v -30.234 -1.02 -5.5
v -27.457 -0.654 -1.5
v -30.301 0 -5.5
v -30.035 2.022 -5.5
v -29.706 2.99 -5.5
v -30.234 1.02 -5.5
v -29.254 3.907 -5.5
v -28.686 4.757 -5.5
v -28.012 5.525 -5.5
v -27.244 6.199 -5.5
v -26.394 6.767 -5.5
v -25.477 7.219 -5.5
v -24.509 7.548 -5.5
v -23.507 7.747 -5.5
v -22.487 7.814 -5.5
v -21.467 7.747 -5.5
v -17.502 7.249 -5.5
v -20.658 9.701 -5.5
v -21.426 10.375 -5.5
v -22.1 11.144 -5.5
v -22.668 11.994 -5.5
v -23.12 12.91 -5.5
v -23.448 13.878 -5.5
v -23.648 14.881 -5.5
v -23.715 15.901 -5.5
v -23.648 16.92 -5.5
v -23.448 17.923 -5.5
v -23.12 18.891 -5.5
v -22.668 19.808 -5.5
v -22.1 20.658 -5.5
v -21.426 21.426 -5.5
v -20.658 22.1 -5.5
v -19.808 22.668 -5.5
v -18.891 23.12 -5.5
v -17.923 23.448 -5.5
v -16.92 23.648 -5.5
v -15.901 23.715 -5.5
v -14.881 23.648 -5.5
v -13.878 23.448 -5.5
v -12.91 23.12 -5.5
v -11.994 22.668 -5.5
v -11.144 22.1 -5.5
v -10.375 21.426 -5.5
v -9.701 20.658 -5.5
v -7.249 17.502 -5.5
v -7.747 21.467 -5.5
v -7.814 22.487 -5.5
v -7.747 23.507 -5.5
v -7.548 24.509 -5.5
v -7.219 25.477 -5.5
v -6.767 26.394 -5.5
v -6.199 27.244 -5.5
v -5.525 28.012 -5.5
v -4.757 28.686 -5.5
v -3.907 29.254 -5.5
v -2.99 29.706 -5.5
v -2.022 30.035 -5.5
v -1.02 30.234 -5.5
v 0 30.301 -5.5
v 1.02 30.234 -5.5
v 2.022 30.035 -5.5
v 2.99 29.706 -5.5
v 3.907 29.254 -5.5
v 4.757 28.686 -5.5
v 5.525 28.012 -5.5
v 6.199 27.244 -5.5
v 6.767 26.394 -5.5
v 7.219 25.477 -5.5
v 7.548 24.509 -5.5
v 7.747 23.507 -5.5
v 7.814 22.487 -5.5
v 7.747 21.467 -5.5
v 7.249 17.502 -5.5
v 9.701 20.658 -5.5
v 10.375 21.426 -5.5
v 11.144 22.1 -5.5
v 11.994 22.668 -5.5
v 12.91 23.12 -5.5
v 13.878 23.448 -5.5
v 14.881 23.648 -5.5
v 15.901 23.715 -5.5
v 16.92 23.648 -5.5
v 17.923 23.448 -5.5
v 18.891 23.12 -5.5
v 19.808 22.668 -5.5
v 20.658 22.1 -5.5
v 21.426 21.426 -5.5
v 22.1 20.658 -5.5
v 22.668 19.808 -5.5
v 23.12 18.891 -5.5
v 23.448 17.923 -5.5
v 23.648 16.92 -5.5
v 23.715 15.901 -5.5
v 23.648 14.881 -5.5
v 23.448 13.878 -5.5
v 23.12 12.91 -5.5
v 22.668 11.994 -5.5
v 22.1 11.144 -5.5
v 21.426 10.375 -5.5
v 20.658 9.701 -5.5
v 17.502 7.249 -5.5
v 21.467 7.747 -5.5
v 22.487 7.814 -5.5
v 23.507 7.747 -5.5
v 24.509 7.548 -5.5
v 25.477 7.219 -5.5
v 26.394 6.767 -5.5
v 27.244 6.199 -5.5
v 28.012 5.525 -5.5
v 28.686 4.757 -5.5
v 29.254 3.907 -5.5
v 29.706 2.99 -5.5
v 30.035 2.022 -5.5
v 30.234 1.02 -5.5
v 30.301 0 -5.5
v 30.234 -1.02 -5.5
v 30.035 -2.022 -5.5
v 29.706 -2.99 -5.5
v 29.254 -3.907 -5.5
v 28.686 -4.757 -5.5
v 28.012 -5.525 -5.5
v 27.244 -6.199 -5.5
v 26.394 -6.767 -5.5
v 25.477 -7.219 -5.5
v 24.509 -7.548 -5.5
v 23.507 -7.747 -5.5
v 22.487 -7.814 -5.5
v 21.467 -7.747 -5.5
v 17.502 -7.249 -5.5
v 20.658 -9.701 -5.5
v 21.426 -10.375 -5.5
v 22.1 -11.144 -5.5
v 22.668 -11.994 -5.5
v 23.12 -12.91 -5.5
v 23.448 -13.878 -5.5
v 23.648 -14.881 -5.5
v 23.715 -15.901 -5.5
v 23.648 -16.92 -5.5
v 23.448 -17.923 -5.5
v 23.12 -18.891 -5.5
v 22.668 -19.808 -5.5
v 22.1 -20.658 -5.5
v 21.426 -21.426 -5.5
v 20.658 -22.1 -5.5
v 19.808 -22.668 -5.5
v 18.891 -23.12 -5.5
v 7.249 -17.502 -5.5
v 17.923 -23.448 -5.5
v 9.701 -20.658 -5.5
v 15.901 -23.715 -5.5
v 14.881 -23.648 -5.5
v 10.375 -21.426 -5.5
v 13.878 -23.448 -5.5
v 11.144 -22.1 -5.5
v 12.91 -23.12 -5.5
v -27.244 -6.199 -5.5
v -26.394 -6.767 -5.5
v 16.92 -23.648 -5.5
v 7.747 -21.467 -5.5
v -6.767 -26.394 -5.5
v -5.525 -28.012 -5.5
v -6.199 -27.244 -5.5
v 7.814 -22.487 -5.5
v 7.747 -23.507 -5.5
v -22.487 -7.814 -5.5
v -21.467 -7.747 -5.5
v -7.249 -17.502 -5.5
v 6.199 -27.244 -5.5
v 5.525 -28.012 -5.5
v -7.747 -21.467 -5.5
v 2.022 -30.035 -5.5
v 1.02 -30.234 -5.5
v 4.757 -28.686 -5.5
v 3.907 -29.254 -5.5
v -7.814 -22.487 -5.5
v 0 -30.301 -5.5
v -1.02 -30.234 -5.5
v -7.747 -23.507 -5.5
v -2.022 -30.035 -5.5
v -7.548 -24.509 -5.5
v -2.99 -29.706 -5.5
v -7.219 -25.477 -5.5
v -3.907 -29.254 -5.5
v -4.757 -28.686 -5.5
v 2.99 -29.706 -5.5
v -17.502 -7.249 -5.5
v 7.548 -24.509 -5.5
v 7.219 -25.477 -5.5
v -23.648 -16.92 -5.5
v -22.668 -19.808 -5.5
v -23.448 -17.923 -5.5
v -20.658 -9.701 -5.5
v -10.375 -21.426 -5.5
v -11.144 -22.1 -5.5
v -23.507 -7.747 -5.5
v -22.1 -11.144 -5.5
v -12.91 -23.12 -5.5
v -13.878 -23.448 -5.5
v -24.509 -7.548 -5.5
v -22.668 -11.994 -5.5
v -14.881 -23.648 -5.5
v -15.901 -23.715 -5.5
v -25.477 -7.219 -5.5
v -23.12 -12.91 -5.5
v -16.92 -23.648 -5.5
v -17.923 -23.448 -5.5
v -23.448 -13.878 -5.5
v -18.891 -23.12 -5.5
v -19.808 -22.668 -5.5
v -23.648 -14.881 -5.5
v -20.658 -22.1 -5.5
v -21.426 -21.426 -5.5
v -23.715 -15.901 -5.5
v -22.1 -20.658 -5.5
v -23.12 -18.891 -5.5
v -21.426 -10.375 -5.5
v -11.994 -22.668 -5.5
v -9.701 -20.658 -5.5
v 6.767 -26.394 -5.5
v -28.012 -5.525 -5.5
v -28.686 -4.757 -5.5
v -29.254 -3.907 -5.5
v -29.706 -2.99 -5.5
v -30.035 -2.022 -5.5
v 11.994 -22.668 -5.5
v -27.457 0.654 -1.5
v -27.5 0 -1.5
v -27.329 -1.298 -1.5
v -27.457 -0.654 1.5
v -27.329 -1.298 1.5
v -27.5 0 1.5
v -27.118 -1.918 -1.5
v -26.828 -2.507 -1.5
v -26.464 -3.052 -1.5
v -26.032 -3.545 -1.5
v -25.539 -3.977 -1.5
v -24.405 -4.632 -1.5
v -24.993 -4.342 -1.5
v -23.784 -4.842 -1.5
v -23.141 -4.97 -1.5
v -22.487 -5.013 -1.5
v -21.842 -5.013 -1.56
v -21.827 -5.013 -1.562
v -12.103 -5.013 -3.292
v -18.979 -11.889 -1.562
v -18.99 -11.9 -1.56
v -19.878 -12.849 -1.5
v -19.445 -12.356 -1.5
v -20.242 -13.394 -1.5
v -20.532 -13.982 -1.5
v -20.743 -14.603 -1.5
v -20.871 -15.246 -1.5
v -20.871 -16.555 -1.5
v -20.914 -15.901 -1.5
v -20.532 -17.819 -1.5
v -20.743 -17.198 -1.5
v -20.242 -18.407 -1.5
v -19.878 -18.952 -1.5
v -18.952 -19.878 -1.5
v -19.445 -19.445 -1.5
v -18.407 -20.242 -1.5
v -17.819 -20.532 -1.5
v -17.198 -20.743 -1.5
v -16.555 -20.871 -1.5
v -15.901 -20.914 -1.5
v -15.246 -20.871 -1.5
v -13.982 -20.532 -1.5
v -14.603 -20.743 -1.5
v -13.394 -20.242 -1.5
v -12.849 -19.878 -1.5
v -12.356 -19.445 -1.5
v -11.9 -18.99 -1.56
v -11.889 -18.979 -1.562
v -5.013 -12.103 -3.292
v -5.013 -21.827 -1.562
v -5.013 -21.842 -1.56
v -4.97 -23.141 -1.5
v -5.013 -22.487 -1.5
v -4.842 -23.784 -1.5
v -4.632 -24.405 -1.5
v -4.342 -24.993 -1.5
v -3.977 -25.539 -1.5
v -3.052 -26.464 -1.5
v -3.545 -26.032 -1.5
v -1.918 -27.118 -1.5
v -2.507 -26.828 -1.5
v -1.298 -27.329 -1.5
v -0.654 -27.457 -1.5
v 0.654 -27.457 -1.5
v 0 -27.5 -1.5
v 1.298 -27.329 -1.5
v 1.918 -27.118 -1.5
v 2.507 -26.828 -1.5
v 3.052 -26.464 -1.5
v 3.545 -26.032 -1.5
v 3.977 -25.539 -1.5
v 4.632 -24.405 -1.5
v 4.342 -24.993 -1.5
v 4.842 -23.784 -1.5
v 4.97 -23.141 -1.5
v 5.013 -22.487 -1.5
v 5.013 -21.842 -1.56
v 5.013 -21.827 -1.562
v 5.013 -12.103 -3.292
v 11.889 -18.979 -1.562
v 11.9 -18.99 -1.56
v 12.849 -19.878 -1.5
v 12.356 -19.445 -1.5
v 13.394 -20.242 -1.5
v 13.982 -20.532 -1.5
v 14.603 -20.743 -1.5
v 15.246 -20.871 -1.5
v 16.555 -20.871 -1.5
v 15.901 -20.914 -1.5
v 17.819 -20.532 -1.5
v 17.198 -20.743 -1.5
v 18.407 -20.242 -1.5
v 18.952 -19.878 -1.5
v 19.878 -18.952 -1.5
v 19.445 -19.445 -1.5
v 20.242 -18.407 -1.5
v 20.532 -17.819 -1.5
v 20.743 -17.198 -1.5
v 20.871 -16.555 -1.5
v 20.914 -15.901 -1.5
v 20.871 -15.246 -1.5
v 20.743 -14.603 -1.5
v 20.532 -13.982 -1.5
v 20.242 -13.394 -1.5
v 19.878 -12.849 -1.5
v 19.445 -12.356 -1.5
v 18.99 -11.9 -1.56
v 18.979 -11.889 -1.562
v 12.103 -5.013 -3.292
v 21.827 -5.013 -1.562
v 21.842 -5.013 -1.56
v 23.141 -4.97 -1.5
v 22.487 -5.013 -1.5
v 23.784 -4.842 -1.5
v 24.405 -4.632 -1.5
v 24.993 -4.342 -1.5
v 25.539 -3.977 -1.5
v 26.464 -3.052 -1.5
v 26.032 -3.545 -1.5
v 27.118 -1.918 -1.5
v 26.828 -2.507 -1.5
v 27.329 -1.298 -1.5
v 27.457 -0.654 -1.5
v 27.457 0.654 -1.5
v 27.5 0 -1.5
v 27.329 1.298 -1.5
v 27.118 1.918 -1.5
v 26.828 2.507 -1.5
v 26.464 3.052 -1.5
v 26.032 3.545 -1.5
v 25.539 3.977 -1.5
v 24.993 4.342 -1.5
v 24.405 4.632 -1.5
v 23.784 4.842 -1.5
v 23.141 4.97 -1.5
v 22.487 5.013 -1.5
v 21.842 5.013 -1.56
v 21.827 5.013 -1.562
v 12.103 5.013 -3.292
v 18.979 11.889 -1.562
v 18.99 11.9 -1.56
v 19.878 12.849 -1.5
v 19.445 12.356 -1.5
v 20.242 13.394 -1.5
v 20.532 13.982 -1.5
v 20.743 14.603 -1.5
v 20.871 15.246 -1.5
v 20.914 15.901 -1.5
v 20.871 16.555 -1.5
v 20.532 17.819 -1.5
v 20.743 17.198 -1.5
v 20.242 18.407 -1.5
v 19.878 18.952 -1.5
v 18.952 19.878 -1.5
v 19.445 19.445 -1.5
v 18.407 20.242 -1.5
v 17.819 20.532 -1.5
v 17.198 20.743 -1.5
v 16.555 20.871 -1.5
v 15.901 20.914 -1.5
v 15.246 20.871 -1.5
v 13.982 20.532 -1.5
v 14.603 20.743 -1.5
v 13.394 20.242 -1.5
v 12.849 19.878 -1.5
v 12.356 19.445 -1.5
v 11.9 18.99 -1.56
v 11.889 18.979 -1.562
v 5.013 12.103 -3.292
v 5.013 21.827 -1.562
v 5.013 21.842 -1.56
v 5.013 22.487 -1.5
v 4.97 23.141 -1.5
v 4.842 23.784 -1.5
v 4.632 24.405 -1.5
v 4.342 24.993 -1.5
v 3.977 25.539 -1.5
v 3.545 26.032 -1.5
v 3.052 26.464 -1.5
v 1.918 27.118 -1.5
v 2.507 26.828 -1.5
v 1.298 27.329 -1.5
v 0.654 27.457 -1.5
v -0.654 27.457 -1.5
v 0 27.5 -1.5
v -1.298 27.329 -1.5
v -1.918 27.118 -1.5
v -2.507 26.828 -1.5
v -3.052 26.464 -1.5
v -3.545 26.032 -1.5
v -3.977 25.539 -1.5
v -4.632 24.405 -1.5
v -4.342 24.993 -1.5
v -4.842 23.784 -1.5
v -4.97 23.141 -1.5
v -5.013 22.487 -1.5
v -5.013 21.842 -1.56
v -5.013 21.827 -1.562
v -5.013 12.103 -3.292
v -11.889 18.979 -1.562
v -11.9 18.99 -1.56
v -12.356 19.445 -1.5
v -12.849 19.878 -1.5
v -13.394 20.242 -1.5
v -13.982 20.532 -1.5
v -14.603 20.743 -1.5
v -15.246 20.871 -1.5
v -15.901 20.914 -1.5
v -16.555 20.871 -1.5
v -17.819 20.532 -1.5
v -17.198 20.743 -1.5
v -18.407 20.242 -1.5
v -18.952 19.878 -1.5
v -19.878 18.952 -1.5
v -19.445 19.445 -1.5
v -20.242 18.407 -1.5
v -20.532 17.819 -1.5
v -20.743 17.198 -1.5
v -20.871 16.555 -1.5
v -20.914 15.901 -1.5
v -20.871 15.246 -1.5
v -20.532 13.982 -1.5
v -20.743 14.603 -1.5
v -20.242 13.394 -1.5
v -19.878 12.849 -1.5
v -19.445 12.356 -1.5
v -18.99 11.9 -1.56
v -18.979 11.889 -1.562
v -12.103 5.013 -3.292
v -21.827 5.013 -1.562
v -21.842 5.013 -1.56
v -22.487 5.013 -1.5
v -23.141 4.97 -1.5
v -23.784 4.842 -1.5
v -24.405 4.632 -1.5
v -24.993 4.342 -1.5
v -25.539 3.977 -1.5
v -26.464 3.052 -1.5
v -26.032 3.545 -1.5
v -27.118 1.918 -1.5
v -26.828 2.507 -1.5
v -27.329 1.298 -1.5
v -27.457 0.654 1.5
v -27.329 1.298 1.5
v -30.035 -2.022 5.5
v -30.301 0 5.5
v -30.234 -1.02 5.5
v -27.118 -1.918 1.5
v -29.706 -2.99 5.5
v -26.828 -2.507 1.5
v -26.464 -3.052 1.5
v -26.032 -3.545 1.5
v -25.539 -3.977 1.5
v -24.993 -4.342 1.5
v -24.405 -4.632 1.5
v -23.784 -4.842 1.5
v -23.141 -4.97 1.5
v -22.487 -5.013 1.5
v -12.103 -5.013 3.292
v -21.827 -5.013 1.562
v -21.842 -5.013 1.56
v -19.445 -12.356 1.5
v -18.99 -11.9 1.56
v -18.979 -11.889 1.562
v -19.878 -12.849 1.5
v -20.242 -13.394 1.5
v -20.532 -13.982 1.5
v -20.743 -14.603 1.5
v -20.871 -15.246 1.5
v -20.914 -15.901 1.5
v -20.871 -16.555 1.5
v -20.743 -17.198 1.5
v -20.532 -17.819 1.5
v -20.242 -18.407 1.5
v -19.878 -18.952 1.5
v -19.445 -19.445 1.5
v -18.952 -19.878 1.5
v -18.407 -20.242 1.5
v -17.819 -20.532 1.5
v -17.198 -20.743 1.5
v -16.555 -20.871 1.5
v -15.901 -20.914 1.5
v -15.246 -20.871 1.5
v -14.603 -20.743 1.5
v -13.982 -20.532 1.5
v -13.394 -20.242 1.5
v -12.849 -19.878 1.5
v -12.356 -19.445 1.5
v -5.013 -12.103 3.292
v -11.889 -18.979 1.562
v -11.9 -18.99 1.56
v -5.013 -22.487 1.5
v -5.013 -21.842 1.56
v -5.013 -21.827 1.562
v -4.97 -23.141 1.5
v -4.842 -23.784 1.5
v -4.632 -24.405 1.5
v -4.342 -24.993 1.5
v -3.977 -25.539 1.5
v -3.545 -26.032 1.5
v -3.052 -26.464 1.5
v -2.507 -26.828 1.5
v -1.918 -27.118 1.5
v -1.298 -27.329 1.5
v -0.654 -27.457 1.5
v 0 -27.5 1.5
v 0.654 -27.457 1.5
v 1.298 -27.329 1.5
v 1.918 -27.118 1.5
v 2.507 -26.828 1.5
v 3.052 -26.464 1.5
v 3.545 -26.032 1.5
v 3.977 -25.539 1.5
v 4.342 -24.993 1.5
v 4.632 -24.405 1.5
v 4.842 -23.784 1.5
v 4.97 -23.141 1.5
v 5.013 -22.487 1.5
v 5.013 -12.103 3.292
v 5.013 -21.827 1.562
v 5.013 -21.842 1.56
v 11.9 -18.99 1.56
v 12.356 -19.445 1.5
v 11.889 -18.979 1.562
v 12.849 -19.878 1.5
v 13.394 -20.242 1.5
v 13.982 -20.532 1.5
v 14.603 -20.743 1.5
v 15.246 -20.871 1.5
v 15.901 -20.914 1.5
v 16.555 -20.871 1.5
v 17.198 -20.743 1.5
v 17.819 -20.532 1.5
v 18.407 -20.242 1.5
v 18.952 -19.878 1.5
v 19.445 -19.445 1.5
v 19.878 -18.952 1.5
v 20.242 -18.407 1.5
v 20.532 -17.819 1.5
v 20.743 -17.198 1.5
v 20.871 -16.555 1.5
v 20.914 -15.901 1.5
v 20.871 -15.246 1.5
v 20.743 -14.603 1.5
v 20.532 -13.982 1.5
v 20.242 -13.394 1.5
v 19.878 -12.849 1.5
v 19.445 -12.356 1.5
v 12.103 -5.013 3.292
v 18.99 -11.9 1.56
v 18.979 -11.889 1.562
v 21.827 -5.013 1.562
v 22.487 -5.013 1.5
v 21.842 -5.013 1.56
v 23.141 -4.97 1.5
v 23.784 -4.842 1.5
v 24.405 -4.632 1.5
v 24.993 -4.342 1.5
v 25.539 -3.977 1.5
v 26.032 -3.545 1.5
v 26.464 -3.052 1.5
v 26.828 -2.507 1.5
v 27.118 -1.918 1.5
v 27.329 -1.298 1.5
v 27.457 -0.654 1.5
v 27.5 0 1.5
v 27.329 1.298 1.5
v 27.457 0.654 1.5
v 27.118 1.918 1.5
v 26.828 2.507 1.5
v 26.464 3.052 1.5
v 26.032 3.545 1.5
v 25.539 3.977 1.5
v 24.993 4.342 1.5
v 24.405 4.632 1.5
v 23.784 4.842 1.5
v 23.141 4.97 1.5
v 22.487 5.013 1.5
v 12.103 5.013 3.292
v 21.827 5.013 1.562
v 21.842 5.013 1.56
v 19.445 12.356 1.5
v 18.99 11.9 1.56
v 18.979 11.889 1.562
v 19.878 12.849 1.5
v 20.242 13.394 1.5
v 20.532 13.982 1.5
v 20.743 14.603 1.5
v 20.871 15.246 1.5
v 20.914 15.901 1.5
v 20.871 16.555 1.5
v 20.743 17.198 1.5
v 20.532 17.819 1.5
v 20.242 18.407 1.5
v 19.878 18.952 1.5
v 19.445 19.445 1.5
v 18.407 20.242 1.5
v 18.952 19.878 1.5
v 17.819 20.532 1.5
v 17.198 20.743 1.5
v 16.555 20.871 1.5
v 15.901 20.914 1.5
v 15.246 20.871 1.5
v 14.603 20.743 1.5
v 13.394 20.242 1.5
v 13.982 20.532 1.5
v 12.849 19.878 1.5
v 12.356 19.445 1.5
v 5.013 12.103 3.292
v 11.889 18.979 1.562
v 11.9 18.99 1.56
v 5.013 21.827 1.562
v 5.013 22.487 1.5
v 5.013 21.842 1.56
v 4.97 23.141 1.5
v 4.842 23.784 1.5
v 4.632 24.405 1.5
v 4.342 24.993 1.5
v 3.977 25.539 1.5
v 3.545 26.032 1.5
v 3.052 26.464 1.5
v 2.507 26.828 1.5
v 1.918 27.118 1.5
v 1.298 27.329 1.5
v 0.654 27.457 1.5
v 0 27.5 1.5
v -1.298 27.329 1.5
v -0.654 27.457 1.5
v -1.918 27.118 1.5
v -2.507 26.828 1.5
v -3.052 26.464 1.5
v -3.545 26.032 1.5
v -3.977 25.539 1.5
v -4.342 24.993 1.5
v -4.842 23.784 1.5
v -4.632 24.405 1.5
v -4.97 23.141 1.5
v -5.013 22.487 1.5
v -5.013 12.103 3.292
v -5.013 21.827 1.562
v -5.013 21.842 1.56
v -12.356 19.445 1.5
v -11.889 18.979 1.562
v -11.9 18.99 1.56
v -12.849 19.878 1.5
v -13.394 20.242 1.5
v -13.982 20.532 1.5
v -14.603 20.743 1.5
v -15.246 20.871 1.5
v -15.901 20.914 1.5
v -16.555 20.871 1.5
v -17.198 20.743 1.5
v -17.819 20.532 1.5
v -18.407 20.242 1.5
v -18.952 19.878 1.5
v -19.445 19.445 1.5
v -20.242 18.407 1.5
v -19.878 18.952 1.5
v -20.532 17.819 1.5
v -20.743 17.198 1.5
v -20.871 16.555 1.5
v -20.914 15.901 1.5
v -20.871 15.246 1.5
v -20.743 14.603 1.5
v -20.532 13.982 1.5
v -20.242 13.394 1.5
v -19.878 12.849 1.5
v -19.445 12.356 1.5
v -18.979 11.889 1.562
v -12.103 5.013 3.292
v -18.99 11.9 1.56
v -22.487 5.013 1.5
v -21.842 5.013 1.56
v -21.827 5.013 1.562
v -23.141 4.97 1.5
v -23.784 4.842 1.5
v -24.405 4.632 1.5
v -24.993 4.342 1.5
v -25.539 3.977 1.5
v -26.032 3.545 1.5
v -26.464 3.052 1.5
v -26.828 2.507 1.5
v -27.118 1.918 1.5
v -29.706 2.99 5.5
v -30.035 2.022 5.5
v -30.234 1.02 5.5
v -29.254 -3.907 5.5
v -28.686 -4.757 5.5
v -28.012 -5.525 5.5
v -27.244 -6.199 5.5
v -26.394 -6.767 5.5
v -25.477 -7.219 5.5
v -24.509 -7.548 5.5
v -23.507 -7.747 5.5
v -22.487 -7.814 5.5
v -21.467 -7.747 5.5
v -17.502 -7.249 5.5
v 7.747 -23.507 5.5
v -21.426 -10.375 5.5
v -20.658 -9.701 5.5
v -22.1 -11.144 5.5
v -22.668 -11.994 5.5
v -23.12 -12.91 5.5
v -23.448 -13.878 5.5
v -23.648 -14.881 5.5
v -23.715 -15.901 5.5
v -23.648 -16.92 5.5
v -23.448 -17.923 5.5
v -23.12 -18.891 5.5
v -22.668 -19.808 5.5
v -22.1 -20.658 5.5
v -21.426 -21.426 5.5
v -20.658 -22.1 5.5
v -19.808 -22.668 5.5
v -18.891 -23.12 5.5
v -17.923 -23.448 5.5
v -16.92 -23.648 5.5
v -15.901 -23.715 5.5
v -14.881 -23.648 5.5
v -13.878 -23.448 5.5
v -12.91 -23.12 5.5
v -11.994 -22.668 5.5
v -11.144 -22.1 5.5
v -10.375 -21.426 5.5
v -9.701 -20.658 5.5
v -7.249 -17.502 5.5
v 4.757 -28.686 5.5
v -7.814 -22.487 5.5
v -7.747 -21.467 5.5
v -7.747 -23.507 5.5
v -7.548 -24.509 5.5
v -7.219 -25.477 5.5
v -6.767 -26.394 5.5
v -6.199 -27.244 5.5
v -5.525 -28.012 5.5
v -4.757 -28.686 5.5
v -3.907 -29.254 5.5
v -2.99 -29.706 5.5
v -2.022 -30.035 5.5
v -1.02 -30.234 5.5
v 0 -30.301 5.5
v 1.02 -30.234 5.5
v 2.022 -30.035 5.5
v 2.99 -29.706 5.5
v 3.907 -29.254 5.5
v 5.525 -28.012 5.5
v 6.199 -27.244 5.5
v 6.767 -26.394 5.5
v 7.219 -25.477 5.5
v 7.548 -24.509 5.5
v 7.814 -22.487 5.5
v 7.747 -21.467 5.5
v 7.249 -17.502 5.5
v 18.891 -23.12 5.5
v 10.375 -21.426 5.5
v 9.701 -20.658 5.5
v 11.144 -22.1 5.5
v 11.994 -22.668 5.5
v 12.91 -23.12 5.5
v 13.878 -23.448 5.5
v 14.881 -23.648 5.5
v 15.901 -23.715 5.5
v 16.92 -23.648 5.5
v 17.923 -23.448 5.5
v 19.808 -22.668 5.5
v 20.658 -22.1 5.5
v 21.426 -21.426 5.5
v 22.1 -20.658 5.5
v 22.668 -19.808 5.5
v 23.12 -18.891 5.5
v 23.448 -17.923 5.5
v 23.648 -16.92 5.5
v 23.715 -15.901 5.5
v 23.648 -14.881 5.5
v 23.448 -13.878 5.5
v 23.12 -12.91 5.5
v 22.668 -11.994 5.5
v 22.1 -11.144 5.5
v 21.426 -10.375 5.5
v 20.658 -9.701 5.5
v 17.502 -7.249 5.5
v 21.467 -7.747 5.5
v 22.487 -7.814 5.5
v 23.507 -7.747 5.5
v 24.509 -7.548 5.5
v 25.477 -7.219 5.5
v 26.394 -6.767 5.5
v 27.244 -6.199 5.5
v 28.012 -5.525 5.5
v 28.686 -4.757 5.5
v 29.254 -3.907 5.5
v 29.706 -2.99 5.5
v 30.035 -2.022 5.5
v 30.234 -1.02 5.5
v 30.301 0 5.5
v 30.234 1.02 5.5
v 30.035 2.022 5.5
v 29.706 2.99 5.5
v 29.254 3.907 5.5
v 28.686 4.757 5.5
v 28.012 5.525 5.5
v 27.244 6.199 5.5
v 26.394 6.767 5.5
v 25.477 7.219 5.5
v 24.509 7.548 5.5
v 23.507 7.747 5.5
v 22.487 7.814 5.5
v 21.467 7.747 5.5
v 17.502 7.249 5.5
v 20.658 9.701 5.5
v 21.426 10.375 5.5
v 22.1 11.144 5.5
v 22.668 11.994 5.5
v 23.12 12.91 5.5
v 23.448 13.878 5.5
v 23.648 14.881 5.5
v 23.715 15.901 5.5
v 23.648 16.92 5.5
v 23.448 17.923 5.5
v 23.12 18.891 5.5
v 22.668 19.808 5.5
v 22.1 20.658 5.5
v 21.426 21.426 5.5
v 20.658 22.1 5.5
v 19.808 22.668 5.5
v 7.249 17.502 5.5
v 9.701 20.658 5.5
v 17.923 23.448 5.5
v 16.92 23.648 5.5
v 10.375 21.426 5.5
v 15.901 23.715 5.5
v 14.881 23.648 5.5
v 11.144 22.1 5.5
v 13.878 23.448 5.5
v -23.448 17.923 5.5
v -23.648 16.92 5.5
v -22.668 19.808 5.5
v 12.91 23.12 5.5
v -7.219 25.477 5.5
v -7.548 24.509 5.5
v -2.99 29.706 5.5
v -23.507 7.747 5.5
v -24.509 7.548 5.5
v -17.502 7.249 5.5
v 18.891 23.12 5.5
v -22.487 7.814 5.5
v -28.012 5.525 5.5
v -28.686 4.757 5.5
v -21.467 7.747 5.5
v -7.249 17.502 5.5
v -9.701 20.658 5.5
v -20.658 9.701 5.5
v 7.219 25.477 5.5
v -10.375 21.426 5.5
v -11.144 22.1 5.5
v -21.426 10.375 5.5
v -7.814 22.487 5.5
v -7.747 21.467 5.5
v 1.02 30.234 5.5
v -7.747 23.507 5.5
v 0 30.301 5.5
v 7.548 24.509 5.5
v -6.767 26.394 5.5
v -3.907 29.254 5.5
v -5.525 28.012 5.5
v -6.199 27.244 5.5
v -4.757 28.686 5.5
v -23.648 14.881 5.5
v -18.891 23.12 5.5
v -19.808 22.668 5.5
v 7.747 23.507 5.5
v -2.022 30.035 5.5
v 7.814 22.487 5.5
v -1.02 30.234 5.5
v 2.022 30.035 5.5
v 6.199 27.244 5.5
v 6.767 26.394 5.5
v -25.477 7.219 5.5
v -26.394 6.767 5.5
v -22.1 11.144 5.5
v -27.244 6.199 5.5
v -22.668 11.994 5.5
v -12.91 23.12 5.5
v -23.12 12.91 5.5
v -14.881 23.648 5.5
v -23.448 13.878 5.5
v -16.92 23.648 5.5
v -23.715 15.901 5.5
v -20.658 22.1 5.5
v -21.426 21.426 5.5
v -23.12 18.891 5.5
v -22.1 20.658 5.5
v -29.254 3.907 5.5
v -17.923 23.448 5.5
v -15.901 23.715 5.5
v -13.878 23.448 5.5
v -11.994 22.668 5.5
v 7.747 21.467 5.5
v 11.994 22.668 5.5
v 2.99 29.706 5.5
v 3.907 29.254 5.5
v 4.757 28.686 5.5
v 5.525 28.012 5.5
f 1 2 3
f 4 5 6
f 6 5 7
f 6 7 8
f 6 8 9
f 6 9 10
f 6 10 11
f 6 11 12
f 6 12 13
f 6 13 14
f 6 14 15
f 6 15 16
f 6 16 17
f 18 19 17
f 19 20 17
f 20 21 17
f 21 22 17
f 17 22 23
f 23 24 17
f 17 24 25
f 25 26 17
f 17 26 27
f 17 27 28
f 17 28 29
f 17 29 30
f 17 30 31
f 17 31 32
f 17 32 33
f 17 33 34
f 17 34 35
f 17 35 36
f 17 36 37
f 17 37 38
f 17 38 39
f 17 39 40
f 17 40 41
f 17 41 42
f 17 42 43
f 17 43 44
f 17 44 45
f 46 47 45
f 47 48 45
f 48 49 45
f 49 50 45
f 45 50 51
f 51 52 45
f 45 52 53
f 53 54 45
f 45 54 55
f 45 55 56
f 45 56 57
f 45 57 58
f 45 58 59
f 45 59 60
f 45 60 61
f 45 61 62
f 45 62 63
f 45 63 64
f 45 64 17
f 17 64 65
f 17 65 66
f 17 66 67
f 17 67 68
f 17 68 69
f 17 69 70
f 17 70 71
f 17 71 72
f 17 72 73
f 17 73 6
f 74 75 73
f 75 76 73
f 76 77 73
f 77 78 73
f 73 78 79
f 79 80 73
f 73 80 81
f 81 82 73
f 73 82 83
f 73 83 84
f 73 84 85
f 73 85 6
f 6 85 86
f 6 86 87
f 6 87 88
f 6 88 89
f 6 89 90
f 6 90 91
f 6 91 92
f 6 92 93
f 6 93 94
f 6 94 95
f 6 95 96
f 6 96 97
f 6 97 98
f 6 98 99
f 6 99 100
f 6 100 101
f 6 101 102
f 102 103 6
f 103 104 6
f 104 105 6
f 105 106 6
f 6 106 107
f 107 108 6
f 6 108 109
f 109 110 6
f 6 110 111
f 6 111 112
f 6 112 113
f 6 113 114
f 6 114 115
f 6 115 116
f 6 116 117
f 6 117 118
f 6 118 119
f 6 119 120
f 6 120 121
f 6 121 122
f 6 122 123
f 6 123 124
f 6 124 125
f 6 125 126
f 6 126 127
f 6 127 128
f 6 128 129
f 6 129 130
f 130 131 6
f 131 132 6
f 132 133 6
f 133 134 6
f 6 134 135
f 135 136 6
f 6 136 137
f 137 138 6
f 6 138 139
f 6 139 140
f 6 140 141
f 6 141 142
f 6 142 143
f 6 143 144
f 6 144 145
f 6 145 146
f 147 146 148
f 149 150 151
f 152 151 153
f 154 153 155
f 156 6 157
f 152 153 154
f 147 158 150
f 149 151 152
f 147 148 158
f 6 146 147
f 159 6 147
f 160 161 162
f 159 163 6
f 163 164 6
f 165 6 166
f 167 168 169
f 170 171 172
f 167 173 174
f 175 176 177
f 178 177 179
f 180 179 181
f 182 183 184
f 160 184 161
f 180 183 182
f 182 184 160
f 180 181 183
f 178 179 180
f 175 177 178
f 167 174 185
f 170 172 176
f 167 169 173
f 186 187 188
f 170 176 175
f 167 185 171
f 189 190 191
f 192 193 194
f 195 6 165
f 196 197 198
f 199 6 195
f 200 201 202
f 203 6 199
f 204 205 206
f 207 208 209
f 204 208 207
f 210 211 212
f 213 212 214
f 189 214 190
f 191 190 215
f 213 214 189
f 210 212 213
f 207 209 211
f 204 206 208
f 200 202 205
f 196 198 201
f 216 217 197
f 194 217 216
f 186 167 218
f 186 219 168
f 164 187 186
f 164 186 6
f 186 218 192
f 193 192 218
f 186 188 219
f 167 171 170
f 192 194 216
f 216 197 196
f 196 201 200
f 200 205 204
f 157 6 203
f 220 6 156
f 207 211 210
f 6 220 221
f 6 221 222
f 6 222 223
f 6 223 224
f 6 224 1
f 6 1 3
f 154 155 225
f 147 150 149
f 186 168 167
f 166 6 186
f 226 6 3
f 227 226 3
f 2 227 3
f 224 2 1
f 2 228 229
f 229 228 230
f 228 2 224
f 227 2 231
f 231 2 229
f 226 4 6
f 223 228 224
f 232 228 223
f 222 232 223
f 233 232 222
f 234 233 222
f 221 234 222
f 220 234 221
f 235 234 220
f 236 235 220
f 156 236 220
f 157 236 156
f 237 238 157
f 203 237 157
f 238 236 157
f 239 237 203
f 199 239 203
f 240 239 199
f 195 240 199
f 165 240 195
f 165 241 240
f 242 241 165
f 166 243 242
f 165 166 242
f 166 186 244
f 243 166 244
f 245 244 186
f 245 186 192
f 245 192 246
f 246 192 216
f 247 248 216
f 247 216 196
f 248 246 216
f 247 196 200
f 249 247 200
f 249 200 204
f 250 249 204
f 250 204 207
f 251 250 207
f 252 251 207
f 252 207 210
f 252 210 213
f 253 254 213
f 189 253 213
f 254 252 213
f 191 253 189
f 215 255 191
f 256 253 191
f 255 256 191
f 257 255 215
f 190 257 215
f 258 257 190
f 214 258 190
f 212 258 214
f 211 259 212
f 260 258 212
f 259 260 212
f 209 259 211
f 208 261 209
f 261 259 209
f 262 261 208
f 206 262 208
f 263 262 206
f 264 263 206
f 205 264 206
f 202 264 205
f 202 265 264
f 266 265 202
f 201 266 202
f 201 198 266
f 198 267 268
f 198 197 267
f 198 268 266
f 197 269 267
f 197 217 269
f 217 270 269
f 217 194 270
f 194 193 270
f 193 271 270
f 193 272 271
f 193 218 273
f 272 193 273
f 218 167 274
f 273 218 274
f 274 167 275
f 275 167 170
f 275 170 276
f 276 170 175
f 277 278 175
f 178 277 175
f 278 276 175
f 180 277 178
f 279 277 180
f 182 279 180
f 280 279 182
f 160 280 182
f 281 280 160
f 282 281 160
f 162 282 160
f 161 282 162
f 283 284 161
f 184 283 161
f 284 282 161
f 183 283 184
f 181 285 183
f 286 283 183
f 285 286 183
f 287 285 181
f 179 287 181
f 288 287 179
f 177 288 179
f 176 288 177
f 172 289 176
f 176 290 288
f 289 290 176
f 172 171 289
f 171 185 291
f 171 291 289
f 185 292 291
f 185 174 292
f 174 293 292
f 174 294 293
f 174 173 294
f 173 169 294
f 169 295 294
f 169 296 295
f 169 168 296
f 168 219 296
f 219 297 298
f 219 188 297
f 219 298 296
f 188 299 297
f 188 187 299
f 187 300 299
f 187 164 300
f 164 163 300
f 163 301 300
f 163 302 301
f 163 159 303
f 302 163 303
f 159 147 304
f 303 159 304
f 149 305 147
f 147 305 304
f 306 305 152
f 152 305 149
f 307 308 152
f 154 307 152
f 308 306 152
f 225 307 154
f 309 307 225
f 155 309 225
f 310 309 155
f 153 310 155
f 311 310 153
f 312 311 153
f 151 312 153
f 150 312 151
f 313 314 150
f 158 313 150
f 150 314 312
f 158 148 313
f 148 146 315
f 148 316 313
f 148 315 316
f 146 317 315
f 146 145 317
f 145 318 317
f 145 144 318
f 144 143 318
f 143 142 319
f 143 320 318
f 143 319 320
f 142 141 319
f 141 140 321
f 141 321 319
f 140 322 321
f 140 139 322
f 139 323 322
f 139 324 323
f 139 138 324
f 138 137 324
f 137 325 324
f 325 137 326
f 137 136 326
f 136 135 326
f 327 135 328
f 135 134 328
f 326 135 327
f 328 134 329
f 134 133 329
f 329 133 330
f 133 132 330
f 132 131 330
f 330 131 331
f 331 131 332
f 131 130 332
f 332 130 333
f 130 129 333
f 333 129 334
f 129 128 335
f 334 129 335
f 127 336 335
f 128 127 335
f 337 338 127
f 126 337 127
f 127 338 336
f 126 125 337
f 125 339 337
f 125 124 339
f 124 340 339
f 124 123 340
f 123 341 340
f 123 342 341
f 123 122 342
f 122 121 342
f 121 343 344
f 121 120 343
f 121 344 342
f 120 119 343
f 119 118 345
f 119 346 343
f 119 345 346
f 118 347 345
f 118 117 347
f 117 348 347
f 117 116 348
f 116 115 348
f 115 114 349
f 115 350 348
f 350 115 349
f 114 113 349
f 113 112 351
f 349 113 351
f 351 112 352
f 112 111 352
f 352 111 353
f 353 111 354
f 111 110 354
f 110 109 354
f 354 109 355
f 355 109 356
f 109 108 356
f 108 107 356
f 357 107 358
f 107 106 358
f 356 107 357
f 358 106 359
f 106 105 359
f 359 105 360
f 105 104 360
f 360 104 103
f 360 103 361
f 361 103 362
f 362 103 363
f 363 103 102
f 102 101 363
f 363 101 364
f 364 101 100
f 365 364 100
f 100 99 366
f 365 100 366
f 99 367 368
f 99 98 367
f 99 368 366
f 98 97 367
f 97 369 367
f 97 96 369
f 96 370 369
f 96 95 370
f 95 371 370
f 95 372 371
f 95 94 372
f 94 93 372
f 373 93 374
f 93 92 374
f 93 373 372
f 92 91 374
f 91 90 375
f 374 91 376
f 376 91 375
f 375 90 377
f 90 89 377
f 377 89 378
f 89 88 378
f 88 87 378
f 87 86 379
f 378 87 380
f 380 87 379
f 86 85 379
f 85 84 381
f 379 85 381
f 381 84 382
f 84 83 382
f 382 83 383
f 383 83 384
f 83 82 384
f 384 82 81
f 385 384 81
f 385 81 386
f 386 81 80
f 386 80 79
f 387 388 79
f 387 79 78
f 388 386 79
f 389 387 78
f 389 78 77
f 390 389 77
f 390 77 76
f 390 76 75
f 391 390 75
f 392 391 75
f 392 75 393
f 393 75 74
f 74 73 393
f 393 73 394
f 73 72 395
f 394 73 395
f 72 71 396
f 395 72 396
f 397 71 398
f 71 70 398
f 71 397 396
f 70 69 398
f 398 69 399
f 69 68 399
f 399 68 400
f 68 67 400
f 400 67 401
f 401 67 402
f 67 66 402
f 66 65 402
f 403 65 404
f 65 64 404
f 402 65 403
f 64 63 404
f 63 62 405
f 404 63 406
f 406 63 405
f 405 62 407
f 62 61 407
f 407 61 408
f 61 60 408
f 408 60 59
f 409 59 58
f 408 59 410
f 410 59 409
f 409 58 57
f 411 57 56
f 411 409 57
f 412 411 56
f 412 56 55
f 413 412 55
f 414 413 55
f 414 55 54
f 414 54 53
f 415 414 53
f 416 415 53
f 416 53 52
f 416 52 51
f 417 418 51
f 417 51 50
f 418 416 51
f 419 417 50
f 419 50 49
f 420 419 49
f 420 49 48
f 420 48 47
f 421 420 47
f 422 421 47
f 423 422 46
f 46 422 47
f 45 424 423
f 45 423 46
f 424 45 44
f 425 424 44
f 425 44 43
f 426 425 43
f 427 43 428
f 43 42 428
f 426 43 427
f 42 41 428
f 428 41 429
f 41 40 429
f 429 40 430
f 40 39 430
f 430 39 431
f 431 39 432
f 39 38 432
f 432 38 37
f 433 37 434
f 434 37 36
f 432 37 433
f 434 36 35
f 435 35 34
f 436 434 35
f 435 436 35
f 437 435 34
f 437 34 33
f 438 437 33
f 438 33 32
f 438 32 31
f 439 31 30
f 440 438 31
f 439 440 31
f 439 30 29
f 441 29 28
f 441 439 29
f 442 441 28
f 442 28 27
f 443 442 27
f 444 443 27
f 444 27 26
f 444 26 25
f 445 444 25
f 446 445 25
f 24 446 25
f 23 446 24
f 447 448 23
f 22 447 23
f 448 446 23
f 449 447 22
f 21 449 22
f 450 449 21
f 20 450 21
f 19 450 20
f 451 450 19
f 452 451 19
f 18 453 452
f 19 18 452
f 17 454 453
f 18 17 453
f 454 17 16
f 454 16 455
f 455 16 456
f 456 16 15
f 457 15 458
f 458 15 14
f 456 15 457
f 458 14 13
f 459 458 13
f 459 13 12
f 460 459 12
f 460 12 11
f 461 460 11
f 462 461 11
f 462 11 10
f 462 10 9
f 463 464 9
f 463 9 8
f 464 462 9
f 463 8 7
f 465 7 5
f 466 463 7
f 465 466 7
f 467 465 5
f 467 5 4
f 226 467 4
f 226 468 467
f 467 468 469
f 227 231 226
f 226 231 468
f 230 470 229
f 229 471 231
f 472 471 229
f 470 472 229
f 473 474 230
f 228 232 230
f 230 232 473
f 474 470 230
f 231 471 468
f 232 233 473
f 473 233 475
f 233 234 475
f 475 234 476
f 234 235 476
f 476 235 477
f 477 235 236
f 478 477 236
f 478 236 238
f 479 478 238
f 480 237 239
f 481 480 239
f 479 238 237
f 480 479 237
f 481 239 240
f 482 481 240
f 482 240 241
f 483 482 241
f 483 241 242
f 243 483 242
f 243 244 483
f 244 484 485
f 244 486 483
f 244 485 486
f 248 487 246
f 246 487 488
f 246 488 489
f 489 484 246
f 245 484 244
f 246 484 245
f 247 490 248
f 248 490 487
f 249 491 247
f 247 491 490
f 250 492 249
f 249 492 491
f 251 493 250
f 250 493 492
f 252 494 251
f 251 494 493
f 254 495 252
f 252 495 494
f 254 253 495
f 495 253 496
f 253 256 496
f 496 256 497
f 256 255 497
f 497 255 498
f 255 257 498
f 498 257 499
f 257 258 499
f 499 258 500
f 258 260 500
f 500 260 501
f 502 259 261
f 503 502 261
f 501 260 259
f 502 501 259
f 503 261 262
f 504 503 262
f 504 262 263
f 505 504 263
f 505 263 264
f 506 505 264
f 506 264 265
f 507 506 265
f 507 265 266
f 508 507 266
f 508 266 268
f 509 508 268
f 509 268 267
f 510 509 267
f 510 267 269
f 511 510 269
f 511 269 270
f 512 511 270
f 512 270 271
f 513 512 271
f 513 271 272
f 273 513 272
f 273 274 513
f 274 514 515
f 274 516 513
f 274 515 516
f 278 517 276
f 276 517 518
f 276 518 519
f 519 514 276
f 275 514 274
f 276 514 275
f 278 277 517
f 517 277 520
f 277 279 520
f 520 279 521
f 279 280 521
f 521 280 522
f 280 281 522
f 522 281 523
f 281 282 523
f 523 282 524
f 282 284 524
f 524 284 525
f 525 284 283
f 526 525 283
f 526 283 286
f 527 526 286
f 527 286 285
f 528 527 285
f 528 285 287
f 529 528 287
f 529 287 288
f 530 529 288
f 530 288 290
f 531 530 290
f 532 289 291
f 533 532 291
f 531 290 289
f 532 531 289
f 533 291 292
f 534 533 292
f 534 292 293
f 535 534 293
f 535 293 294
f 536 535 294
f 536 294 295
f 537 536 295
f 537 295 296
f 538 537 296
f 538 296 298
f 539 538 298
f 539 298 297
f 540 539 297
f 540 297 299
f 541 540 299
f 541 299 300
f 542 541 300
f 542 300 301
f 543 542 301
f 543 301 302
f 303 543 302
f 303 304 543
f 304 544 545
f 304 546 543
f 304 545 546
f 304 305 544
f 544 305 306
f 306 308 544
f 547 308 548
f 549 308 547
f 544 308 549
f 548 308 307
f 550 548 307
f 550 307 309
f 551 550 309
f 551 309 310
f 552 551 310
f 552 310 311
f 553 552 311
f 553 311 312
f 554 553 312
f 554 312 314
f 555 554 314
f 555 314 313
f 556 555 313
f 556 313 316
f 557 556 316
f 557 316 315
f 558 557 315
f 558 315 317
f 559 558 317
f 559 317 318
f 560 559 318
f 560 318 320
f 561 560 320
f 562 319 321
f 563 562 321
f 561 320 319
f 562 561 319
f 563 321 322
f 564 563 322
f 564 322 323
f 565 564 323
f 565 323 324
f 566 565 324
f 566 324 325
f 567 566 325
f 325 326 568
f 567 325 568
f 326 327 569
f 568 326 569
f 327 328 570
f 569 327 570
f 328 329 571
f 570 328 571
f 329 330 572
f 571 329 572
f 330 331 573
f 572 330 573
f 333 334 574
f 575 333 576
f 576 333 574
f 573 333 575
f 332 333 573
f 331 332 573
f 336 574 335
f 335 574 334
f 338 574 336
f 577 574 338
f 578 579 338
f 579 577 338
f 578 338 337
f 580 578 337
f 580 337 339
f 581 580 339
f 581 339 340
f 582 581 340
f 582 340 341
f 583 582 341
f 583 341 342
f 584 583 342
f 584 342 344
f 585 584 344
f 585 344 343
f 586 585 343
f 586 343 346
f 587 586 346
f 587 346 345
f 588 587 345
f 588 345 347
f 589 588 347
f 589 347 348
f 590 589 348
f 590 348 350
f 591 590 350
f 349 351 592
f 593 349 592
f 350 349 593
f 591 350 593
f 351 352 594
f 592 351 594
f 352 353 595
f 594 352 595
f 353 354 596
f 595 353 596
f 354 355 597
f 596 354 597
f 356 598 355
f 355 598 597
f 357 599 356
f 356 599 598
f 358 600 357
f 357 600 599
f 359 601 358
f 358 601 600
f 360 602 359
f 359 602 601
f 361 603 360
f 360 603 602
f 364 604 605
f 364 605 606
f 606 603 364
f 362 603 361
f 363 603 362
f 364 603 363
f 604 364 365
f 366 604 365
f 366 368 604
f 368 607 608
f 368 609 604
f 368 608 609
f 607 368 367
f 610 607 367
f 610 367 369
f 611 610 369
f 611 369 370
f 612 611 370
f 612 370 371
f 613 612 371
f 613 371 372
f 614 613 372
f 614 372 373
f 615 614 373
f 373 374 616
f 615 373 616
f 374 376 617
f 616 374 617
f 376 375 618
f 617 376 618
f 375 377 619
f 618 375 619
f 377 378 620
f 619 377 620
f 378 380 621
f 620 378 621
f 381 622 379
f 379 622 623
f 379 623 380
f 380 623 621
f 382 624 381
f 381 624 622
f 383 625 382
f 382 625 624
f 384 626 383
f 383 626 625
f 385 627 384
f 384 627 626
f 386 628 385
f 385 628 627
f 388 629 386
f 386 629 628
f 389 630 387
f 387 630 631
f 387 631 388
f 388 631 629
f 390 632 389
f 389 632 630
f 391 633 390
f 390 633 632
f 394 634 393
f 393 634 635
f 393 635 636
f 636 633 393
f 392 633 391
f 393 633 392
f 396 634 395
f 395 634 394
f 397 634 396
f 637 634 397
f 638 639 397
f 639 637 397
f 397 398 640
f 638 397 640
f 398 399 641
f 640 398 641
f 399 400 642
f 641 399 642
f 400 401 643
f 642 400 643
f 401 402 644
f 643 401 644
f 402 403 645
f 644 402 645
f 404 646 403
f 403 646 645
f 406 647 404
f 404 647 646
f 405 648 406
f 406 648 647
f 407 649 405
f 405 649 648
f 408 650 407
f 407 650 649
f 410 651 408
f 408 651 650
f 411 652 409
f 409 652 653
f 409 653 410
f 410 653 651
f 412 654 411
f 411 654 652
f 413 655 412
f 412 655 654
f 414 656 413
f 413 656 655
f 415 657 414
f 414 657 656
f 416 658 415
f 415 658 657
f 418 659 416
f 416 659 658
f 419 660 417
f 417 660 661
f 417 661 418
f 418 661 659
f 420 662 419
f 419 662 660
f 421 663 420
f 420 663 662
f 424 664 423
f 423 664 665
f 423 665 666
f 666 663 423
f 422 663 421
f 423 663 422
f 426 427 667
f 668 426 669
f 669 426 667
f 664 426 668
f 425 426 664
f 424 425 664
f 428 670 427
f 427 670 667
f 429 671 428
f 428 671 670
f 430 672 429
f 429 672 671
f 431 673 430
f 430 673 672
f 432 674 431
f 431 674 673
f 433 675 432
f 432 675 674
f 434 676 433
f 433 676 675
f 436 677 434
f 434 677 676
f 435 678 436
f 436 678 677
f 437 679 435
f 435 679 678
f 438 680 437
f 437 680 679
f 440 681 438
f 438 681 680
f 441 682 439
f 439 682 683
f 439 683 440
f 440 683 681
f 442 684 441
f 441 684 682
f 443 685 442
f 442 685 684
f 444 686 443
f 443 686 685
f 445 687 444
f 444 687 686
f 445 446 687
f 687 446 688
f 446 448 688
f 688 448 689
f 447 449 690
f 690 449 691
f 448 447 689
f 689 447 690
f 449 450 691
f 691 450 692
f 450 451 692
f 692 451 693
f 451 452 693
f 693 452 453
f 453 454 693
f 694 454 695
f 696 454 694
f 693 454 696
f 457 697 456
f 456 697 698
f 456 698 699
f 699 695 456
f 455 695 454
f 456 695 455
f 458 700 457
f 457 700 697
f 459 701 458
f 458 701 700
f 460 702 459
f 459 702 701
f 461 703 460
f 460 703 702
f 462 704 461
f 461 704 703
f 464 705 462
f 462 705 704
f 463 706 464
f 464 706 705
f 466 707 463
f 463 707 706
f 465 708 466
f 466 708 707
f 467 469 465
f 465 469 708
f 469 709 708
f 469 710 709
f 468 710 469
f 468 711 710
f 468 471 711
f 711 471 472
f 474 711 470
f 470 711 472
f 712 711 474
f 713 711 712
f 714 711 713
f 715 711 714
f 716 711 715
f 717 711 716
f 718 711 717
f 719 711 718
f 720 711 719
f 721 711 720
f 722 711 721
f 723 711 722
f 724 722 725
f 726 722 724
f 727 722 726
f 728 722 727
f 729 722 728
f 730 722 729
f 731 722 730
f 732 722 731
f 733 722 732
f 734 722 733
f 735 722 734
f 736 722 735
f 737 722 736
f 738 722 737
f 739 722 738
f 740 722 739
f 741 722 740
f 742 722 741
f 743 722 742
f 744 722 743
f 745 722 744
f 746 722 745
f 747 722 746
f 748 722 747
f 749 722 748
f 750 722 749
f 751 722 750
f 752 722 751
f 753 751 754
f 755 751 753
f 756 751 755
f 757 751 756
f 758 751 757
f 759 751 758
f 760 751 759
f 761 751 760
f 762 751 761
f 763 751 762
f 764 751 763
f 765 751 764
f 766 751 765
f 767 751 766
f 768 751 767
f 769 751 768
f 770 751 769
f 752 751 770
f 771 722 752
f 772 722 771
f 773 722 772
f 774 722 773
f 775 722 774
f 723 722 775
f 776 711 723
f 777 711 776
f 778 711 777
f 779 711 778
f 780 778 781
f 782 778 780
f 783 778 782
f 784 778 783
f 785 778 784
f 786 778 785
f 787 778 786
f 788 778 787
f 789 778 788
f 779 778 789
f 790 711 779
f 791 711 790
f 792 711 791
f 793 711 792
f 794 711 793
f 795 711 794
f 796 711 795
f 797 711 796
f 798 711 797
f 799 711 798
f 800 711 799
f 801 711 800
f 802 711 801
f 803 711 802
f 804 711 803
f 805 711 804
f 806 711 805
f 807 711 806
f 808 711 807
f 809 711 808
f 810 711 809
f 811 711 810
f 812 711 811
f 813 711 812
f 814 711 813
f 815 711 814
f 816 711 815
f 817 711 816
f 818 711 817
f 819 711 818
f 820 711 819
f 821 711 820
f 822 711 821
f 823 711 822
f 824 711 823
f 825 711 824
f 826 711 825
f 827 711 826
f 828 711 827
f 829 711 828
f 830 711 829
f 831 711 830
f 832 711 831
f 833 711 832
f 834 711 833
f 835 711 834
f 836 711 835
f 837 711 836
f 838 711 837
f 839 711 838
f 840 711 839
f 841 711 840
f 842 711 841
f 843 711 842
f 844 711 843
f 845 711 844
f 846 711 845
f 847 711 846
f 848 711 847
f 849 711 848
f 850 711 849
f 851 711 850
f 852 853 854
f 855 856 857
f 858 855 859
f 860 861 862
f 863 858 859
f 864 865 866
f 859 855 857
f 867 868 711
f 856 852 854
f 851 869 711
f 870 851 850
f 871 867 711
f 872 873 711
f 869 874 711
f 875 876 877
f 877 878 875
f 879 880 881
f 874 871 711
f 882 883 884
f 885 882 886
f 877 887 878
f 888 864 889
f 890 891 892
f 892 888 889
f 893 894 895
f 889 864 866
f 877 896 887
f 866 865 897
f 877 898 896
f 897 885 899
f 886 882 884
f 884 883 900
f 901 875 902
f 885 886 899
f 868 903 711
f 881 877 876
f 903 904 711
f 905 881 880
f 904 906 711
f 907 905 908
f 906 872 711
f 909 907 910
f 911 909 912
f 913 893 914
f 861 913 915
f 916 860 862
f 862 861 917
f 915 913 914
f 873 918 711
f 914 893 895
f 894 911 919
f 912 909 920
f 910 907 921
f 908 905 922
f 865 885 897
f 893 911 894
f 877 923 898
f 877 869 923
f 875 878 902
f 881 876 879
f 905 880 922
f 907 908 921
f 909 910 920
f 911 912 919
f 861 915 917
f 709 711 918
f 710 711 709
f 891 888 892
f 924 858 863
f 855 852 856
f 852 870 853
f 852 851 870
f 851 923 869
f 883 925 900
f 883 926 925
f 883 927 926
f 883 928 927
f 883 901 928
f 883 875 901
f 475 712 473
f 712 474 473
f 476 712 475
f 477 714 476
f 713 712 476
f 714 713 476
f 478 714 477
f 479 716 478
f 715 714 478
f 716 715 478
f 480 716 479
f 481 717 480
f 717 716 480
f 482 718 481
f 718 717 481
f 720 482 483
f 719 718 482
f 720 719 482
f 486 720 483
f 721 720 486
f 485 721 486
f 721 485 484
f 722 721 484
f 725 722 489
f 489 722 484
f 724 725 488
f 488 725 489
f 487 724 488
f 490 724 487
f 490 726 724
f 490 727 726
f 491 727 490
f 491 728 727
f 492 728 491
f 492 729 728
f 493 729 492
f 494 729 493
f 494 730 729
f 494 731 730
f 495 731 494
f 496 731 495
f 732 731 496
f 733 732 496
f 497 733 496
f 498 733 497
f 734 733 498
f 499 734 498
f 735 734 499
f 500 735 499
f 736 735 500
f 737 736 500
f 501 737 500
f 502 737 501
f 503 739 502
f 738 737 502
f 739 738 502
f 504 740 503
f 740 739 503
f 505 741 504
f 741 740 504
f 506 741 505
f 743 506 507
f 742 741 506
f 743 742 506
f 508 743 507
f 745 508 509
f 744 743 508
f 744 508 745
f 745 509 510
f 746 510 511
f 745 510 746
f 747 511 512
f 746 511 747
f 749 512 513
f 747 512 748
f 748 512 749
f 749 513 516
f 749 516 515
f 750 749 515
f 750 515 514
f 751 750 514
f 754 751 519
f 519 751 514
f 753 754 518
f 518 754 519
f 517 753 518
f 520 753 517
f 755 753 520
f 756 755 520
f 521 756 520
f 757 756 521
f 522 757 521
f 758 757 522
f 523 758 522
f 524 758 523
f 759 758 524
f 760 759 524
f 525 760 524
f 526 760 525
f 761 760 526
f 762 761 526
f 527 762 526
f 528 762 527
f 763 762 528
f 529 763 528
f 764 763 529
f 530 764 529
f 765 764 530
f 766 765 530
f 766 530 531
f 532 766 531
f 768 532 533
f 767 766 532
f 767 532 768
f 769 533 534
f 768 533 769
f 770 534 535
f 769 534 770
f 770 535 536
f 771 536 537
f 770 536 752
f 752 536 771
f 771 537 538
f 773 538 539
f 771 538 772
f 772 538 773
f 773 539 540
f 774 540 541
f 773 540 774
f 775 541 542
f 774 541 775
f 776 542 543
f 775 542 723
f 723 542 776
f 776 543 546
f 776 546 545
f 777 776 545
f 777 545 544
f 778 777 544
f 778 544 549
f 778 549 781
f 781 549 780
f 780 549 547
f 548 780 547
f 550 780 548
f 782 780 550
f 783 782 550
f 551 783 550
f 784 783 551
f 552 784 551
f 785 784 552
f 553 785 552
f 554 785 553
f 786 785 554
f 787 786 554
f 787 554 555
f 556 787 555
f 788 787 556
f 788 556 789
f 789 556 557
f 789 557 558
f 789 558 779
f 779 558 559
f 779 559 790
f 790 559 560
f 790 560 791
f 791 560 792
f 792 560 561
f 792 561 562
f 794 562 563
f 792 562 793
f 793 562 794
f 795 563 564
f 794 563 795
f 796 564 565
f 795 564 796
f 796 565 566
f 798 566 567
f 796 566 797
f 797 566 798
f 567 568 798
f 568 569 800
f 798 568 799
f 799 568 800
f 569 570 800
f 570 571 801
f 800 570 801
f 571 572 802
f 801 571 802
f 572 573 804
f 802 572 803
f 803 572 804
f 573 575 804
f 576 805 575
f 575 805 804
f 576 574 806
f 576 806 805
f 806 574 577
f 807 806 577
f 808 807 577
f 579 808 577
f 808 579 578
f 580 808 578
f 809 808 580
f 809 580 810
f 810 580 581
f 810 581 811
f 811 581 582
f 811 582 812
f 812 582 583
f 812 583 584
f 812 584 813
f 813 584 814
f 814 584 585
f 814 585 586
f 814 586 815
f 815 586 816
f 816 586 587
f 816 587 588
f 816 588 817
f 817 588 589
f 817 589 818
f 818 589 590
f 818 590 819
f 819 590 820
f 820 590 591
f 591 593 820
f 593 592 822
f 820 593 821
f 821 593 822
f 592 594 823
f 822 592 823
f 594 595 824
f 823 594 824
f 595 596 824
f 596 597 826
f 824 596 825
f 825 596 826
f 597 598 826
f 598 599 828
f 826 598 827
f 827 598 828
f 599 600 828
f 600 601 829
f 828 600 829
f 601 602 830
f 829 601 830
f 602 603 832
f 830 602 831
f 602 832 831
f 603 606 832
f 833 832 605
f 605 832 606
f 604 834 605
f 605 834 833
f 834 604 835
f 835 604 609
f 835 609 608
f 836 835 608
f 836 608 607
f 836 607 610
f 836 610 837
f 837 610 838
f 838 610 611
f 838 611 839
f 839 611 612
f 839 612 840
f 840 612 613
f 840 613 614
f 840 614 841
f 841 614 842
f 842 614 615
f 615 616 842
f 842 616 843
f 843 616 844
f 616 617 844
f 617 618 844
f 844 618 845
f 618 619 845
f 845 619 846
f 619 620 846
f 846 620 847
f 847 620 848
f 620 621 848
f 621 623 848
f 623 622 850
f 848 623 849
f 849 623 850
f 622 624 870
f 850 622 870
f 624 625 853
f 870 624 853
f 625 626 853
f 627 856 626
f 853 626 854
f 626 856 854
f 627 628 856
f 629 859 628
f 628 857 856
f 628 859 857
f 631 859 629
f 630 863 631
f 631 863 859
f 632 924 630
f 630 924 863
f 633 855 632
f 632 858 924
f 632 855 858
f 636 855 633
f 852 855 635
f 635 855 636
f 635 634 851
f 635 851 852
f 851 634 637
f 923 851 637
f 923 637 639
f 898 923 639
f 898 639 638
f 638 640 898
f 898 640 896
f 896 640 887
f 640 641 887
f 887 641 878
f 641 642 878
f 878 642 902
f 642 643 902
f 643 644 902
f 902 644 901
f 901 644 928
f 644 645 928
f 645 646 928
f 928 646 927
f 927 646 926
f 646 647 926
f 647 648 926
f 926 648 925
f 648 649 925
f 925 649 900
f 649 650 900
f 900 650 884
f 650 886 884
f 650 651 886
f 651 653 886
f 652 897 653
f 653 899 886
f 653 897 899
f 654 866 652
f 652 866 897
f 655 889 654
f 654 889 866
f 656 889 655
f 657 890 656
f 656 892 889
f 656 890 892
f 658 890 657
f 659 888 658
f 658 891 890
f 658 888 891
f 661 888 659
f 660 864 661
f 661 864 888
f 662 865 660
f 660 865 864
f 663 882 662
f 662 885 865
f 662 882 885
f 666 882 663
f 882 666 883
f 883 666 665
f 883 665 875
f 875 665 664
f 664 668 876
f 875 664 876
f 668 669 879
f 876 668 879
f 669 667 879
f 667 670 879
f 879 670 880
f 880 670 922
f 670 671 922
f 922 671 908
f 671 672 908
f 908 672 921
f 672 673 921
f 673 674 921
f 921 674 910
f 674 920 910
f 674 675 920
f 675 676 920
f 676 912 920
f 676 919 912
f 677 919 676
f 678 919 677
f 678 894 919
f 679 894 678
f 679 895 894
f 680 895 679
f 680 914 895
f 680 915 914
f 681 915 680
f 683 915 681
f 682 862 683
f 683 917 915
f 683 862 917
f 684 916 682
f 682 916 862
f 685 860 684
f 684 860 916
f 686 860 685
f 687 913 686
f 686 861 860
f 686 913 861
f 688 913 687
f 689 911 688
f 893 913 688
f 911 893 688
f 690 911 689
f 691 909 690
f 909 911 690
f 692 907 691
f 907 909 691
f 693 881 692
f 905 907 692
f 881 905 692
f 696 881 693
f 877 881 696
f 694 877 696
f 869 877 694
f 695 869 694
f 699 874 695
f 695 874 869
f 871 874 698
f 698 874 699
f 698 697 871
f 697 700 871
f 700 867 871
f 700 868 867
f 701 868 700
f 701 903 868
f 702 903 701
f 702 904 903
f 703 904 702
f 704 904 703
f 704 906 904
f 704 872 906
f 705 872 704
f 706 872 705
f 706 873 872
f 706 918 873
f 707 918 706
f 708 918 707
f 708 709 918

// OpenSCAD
// Spool holder.
// Spools have a hole to be placed on some axis. Usually the hole
// is bigger than the axis; this spool holder is a spacer between axis and spool.

// For printing
//   - use perimeter (vertical shells) 2
//   - layer thickness: 0.2
//   - horizontal shells: 0
//   - fill density 0

// While developing, we want to see approximately how the final shape looks
// like, while for printing (developer_view=false), we get a solid for which
// the slicer generates a perimeter.
developer_view=false;

// User parameters (just mm)
spool_hole_diameter = 55;       // The diameter of the hole in the spool
axis_diameter = 25;             // Diameter of the axis we want to put it on.
                                //   (plus like 2mm to account for less accuracy)
spool_material_thickness = 3;   // The thickness of the spool material.
print_thickness = 1.2;          // Printed thickness of the walls,
                                // as determined by the perimeters (see slicer)			
arm_count = 8;                  // Number of arms in this star shape.

// Probably nothing to change here.
holder_height = spool_material_thickness + 8; // The total height of the holder.
flare_angle=35;                // 0..40: Angle of the flare from the middle.
outer_flare = (holder_height - spool_material_thickness)/ (2 * tan(90 - flare_angle));


// -- local settings
$fn=48;  // Resolution of round faces. More is more smooth but blows up file-size.
inner_r=axis_diameter / 2;
outer_r=spool_hole_diameter / 2;
outer_rings_height=(holder_height - spool_material_thickness)/2;

// The width of the arm is chosen in a way that they
// intersect at the inner radius of our holder.
// This is the side-length of the regular arm_count-polygon whose
// circumcicle is the axis.
arm_r=sin(180 / arm_count) * (inner_r + print_thickness/2);

// Just for visual reference: the axis and the spool.
module reference_view() {
    cylinder(r=inner_r, h=2*holder_height, center=true);
    difference() {
	cylinder(r=outer_r + 10, h=spool_material_thickness, center=true);
	cylinder(r=outer_r, h=spool_material_thickness+0.1, center=true);
    }
}

// A cone, off-center on the z-axis.
module offset_cone(z_offset, narrow_r, wide_r) {
    translate([0, 0, z_offset])
       cylinder(r1=narrow_r, r2=wide_r,
	        h=holder_height/2 - z_offset);
}

// The arm that is a bit wider on the outside.
module flare_arm(x) {
    hull() {
	offset_cone(spool_material_thickness/2, 0, arm_r);  // center cone.
	translate([x, 0, 0]) offset_cone(spool_material_thickness/2,
	                                 arm_r, arm_r + outer_flare);
    }
}

// Draws an arm. Parameter: distance from center.
module star_arm(x_distance) {
    flare_arm(x_distance);                    // top
    mirror([0, 0, 1]) flare_arm(x_distance);  // bottom
    hull() {
	cylinder(r=arm_r, h=holder_height, center=true);
	translate([x_distance, 0, 0]) cylinder(r=arm_r, h=holder_height, center=true);
    }
}

module solid_cross() {
    for (i = [0:arm_count-1]) {
	rotate([0, 0, (360/arm_count) * i]) star_arm(outer_r - arm_r);
    }
}

// How this looks 'assembled'
%reference_view();

if (developer_view) {
    assign(approximate_factor=(spool_hole_diameter - 2 * print_thickness) / spool_hole_diameter) {
	difference() {
	    solid_cross();
	    scale([approximate_factor,approximate_factor,1.01]) solid_cross();
	}
    }
} else {
    // We create a solid. It is simpler for the slicer to create a cirumreference
    solid_cross();
}
